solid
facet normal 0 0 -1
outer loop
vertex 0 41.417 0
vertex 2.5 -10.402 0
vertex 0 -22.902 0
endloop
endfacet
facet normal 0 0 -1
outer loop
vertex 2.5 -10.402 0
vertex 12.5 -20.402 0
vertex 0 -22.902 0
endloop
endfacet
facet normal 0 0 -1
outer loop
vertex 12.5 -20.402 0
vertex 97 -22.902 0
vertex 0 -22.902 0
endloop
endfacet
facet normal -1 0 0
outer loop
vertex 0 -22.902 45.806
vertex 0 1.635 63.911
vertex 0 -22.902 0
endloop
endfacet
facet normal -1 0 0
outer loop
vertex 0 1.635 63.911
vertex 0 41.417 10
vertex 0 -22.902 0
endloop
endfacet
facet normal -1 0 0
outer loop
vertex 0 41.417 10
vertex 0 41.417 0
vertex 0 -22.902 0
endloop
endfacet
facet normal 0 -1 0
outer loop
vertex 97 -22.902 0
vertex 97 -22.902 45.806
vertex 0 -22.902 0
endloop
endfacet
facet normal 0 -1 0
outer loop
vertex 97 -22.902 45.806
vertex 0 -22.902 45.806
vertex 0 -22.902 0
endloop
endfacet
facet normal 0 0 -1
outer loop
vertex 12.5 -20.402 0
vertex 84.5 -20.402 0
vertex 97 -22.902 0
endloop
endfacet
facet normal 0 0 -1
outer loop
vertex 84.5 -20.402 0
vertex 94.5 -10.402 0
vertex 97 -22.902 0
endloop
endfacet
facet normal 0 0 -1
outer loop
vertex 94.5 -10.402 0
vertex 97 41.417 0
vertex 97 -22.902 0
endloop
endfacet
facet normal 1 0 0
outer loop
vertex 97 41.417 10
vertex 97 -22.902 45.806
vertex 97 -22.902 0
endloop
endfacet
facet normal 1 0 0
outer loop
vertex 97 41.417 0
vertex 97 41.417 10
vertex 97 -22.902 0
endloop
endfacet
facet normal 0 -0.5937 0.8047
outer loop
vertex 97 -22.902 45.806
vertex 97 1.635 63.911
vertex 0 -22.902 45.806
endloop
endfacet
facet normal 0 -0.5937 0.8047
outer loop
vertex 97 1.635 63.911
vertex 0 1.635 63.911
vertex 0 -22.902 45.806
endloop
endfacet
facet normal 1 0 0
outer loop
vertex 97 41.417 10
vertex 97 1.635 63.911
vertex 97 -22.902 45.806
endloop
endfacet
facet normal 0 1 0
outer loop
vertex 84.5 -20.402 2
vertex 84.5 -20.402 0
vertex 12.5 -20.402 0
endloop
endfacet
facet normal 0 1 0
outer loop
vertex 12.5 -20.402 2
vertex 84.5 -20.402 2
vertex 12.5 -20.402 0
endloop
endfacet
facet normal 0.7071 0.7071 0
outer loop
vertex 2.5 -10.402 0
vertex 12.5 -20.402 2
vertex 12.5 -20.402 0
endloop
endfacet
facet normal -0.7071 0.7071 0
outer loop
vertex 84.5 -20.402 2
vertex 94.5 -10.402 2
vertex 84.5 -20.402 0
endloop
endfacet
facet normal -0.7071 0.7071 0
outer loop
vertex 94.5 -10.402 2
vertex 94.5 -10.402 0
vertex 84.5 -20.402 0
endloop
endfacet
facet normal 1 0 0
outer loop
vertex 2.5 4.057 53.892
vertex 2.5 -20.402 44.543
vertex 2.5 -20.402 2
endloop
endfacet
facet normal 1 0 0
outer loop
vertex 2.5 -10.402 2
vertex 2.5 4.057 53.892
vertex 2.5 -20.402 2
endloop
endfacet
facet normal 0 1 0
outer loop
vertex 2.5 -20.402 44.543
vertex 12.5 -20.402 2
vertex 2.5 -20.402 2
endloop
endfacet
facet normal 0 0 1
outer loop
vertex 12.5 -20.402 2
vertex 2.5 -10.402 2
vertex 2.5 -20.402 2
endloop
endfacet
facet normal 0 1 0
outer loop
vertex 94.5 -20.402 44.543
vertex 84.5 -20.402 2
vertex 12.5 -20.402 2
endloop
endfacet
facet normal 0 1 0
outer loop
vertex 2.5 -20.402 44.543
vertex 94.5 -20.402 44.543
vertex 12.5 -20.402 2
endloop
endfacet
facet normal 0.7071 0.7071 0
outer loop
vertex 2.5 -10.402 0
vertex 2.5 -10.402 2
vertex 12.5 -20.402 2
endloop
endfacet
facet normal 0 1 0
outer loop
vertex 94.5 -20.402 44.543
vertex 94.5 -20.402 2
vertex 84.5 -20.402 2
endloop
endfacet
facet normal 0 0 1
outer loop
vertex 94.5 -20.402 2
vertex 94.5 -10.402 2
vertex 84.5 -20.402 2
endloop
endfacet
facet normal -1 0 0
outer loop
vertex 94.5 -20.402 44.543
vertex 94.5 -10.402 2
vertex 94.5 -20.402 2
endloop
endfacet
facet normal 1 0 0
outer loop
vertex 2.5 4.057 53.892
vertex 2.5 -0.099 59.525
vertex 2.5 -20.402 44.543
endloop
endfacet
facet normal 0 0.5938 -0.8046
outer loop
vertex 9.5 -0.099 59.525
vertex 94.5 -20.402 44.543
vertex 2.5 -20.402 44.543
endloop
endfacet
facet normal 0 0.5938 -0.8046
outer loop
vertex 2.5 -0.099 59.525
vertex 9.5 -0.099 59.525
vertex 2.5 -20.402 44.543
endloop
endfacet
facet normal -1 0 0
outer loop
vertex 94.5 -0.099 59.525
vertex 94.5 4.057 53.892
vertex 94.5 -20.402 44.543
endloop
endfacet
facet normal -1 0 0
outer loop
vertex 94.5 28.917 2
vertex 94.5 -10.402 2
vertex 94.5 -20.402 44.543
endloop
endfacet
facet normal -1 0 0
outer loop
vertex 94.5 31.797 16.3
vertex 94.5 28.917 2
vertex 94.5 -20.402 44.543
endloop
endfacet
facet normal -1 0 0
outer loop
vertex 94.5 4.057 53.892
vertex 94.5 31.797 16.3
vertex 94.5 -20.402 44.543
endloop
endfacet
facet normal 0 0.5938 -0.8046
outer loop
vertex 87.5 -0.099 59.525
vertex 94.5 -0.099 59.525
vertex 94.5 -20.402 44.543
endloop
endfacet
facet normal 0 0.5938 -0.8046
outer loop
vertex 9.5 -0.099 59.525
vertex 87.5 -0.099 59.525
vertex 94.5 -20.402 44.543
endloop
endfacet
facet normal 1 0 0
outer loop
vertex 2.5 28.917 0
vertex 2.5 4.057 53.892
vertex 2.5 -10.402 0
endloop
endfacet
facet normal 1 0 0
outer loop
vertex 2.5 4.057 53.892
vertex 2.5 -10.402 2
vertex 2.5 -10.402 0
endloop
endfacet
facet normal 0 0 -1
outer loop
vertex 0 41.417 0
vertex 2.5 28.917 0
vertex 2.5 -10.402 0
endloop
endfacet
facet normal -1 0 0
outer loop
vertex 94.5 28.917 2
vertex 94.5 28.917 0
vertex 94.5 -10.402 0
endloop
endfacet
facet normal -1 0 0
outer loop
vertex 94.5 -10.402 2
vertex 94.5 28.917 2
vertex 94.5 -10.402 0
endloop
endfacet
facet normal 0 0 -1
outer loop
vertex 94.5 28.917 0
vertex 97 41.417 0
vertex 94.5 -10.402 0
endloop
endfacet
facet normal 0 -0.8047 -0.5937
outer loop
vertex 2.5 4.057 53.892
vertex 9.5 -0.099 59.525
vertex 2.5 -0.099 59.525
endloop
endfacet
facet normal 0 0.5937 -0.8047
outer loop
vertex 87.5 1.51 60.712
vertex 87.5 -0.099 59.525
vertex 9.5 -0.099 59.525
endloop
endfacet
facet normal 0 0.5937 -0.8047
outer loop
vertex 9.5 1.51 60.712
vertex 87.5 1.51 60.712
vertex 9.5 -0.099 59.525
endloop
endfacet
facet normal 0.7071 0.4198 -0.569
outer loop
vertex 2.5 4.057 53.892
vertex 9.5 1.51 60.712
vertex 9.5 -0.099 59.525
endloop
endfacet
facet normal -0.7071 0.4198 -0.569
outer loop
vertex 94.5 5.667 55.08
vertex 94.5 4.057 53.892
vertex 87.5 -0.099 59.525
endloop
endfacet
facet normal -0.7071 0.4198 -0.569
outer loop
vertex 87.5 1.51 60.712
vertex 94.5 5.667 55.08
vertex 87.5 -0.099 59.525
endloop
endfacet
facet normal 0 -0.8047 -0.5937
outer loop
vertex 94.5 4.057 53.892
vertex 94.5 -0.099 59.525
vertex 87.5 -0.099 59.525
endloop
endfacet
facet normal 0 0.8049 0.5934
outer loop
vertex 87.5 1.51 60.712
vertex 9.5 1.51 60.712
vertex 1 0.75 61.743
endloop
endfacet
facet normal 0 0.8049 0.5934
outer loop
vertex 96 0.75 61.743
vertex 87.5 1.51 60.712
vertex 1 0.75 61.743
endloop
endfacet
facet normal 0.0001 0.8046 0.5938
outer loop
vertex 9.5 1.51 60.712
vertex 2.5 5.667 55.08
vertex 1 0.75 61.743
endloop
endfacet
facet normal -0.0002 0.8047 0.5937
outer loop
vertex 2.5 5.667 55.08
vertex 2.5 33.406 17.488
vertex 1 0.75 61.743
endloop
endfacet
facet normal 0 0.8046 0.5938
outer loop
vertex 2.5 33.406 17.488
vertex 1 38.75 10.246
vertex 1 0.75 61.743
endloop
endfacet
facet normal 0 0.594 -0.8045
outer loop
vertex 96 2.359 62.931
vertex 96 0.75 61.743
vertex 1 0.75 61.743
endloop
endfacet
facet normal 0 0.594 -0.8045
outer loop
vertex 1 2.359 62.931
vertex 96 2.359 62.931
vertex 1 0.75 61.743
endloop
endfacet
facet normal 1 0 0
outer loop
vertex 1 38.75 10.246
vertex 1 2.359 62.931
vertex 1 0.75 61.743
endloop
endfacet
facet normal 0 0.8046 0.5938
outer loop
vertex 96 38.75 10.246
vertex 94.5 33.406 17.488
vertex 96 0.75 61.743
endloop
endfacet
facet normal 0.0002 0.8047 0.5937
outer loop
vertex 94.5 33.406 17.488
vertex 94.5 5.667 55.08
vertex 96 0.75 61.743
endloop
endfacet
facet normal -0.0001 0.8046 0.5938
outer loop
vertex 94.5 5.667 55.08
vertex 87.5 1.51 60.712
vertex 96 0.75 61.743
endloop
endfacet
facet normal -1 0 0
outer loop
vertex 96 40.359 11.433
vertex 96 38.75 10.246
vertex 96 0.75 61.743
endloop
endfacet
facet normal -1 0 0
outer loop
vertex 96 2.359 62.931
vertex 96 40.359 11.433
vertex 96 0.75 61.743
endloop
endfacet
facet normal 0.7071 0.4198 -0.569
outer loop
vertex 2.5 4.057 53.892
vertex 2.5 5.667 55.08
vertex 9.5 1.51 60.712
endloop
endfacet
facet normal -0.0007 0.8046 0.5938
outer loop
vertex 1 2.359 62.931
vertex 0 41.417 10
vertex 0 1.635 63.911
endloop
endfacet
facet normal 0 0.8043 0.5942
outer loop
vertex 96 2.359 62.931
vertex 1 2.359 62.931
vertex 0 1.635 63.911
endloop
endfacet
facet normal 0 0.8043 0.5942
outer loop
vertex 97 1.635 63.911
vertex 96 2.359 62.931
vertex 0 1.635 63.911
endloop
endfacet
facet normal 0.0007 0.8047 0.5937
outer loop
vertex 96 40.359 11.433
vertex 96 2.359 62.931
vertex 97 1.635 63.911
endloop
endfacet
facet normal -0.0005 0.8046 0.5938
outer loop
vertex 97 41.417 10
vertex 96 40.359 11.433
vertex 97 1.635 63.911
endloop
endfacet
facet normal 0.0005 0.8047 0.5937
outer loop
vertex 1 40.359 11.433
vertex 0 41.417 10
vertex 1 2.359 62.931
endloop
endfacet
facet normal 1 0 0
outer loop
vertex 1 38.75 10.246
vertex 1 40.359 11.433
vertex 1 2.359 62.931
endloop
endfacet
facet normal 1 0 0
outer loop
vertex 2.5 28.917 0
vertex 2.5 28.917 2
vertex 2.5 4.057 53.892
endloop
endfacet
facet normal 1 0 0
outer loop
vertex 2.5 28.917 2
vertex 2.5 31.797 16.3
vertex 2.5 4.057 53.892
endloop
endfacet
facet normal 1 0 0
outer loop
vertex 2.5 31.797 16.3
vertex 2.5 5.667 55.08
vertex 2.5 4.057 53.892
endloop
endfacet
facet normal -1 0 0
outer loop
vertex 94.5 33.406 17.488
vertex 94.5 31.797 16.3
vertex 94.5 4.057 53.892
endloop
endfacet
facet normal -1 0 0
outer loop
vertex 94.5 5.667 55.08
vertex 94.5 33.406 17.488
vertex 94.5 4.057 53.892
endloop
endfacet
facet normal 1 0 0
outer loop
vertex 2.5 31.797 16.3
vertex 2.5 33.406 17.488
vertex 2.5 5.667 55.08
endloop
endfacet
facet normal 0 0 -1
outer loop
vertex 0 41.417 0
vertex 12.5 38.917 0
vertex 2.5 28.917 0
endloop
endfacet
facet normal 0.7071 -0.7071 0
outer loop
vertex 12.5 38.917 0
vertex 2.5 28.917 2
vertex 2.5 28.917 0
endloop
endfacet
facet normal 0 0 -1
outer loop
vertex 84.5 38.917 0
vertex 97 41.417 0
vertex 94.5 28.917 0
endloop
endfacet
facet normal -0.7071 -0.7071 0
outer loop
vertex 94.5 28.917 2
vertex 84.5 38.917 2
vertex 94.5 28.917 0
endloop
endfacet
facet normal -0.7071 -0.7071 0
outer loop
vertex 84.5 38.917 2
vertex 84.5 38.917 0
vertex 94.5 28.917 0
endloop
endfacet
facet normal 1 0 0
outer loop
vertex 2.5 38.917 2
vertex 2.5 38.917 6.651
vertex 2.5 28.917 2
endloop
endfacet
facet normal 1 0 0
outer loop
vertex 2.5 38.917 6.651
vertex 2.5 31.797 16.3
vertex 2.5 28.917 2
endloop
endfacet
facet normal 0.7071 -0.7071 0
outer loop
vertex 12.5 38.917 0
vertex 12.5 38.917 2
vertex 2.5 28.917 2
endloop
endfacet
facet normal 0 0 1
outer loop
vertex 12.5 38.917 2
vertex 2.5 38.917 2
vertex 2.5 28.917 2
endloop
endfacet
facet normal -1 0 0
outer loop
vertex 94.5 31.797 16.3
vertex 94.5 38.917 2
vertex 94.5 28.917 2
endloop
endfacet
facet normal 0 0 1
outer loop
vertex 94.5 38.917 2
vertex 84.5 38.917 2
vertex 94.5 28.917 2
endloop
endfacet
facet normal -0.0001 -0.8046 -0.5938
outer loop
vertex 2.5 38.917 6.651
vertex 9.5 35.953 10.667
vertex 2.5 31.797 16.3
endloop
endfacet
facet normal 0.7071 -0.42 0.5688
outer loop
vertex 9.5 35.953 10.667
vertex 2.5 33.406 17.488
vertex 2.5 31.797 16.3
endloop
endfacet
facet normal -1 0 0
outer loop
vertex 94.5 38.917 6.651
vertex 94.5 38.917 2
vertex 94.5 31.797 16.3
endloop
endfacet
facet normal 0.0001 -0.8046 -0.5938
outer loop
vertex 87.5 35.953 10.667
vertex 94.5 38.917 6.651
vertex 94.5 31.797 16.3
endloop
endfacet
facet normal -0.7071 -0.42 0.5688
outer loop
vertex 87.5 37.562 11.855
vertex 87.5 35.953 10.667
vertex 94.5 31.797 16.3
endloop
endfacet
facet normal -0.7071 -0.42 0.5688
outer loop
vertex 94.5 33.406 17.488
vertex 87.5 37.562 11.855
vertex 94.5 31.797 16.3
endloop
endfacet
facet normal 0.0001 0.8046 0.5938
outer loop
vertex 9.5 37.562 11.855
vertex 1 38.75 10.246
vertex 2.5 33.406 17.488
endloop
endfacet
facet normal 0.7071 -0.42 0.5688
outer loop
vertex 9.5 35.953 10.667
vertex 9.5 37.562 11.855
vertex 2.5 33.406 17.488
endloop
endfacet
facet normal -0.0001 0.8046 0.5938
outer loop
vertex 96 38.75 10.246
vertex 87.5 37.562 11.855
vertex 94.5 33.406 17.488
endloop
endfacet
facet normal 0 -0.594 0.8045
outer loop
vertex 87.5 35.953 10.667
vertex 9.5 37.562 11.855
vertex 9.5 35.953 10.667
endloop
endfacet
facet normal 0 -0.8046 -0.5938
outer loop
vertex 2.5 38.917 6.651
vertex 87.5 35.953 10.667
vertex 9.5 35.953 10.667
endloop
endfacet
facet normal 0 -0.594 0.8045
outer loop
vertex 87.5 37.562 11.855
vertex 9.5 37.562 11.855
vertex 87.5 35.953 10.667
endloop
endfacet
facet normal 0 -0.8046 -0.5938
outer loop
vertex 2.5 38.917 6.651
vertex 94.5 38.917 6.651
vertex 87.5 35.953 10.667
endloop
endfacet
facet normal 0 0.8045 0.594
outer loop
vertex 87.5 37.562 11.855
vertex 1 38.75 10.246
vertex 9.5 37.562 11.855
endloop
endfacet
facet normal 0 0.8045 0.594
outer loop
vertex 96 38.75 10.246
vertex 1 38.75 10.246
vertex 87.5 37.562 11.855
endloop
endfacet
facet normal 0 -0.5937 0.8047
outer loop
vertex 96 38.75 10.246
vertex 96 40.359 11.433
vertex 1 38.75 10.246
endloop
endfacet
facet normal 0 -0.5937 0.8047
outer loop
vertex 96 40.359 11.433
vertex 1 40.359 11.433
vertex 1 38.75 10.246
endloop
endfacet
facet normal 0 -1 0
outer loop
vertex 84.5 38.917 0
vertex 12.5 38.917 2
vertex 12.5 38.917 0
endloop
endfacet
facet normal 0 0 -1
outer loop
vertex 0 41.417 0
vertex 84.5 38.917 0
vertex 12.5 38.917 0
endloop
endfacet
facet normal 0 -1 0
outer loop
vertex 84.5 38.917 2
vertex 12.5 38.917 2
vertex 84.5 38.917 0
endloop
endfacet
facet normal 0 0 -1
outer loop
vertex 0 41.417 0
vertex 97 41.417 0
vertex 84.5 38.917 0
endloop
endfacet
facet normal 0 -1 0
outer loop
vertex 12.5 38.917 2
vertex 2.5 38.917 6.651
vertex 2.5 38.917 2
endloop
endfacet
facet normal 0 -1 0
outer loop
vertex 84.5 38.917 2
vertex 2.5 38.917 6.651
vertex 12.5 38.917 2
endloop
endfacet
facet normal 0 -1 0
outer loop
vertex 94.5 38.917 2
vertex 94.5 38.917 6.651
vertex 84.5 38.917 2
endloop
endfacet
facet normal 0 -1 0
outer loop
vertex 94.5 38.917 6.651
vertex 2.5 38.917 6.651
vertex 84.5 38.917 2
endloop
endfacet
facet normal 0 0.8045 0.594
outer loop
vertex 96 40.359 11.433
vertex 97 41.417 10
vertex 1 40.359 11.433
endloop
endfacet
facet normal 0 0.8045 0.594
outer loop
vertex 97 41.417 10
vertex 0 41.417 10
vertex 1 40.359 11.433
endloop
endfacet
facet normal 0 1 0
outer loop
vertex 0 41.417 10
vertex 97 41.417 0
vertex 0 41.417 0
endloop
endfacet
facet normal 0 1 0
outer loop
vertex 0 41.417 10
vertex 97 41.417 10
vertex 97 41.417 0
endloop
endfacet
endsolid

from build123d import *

# Parameters (mm, degrees)
BOSS_EXTRUDE1_DEPTH = 97
SHELL1_T            = -2.5
SKETCH2_W           = 95
SKETCH2_H           = 64
CUT_EXTRUDE1_DEPTH  = 2
BOSS_EXTRUDE2_DEPTH = 93
BOSS_EXTRUDE3_DEPTH = 2
BOSS_EXTRUDE4_DEPTH = 2


with BuildPart() as part:
    # Sketch1 → Boss-Extrude1 (new body)
    with BuildSketch(Plane(origin=(0, 0, 0), x_dir=(0, 0, -1), z_dir=(1, 0, 0))):
        Polygon((0, 41.416666667), (-10, 41.416666667), (-63.911408917, 1.635264119), (-45.805595857, -22.901575437), (0, -22.901575437), align=None)
    extrude(amount=BOSS_EXTRUDE1_DEPTH)

    # Shell1
    shell1_openings = [part.faces().sort_by_distance(p)[0] for p in [
        (48.5, 9.257545615, 0),
        (48.5, 21.525965393, 36.955704458),
    ]]
    offset(amount=SHELL1_T, openings=shell1_openings, kind=Kind.INTERSECTION)

    # Sketch2 → Cut-Extrude1 (cut)
    with BuildSketch(Plane(origin=(0, 31.593177041, 23.312707252), x_dir=(1, 0, 0), z_dir=(0, 0.804647894, 0.593752277))):
        with Locations((48.500142071, -17.236366389)):
            Rectangle(SKETCH2_W, SKETCH2_H)
    extrude(amount=-CUT_EXTRUDE1_DEPTH, mode=Mode.SUBTRACT)

    # Sketch3 → Boss-Extrude2 (add)
    with BuildSketch(Plane.ZY.offset(-94.5)):
        Polygon((11.85497179, 37.56231777), (10.245676001, 38.749822323), (10.36879098, 38.916666667), (6.65116187, 38.916666667), (10.667467236, 35.953021981), align=None)
    extrude(amount=BOSS_EXTRUDE2_DEPTH)

    # Sketch4 → Boss-Extrude3 (add)
    with BuildSketch(Plane(origin=(0, 0, 0), x_dir=(-1, 0, 0), z_dir=(0, 0, -1))):
        Polygon((-94.5, -10.401575437), (-84.5, -20.401575437), (-94.5, -20.401575437), align=None)
        Polygon((-84.5, 38.916666667), (-94.5, 28.916666667), (-94.5, 38.916666667), align=None)
        Polygon((-2.5, 38.916666667), (-2.5, 28.916666667), (-12.5, 38.916666667), align=None)
        Polygon((-2.5, -20.401575437), (-2.5, -10.401575437), (-12.5, -20.401575437), align=None)
    extrude(amount=-BOSS_EXTRUDE3_DEPTH)

    # Sketch5 → Boss-Extrude4 (add)
    with BuildSketch(Plane(origin=(0, 29.983881253, 22.125202698), x_dir=(1, 0, 0), z_dir=(0, 0.804647894, 0.593752277))):
        Polygon((2.5, 12.763633611), (2.5, 5.763633611), (9.5, 12.763633611), align=None)
        Polygon((2.5, -47.955238811), (9.5, -47.955238811), (2.5, -40.955238811), align=None)
        Polygon((94.5, -47.955238811), (94.5, -40.955238811), (87.5, -47.955238811), align=None)
        Polygon((94.5, 12.763633611), (94.5, 5.763633611), (87.5, 12.763633611), align=None)
    extrude(amount=-BOSS_EXTRUDE4_DEPTH)


solid = part.part
